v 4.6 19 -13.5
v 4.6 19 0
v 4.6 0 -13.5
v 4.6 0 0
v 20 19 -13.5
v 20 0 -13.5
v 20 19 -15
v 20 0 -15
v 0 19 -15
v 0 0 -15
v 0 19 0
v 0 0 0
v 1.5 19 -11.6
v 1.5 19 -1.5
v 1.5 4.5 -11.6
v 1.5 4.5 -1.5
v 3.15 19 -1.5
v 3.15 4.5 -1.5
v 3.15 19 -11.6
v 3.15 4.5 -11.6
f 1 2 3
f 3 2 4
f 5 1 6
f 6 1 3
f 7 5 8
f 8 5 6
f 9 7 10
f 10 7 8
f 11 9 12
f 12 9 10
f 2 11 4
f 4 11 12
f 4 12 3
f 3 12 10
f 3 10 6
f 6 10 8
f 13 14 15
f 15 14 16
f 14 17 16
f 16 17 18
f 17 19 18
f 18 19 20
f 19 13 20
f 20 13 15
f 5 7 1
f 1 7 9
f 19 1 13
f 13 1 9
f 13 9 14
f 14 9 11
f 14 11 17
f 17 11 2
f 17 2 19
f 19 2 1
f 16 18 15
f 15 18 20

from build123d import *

# Parameters (mm, degrees)
BOSS_EXTRUDE1_DEPTH = 4.5
SKETCH1_3_W         = 1.65
SKETCH1_3_H         = 10.1
BOSS_EXTRUDE2_DEPTH = 19


with BuildPart() as part:
    # Sketch1 → Boss-Extrude1 (new body)
    with BuildSketch(Plane(origin=(0, 0, 0), x_dir=(1, 0, 0), z_dir=(0, 1, 0))):
        Polygon((0, 0), (0, 15), (20, 15), (20, 13.5), (4.6, 13.5), (4.6, 0), align=None)
    extrude(amount=BOSS_EXTRUDE1_DEPTH)

    # Sketch1<3> → Boss-Extrude2 (add)
    with BuildSketch(Plane(origin=(0, 0, 0), x_dir=(1, 0, 0), z_dir=(0, 1, 0))):
        Polygon((0, 0), (0, 15), (20, 15), (20, 13.5), (4.6, 13.5), (4.6, 0), align=None)
        with Locations((2.325, 6.55)):
            Rectangle(SKETCH1_3_W, SKETCH1_3_H, mode=Mode.SUBTRACT)
    extrude(amount=BOSS_EXTRUDE2_DEPTH)


solid = part.part
